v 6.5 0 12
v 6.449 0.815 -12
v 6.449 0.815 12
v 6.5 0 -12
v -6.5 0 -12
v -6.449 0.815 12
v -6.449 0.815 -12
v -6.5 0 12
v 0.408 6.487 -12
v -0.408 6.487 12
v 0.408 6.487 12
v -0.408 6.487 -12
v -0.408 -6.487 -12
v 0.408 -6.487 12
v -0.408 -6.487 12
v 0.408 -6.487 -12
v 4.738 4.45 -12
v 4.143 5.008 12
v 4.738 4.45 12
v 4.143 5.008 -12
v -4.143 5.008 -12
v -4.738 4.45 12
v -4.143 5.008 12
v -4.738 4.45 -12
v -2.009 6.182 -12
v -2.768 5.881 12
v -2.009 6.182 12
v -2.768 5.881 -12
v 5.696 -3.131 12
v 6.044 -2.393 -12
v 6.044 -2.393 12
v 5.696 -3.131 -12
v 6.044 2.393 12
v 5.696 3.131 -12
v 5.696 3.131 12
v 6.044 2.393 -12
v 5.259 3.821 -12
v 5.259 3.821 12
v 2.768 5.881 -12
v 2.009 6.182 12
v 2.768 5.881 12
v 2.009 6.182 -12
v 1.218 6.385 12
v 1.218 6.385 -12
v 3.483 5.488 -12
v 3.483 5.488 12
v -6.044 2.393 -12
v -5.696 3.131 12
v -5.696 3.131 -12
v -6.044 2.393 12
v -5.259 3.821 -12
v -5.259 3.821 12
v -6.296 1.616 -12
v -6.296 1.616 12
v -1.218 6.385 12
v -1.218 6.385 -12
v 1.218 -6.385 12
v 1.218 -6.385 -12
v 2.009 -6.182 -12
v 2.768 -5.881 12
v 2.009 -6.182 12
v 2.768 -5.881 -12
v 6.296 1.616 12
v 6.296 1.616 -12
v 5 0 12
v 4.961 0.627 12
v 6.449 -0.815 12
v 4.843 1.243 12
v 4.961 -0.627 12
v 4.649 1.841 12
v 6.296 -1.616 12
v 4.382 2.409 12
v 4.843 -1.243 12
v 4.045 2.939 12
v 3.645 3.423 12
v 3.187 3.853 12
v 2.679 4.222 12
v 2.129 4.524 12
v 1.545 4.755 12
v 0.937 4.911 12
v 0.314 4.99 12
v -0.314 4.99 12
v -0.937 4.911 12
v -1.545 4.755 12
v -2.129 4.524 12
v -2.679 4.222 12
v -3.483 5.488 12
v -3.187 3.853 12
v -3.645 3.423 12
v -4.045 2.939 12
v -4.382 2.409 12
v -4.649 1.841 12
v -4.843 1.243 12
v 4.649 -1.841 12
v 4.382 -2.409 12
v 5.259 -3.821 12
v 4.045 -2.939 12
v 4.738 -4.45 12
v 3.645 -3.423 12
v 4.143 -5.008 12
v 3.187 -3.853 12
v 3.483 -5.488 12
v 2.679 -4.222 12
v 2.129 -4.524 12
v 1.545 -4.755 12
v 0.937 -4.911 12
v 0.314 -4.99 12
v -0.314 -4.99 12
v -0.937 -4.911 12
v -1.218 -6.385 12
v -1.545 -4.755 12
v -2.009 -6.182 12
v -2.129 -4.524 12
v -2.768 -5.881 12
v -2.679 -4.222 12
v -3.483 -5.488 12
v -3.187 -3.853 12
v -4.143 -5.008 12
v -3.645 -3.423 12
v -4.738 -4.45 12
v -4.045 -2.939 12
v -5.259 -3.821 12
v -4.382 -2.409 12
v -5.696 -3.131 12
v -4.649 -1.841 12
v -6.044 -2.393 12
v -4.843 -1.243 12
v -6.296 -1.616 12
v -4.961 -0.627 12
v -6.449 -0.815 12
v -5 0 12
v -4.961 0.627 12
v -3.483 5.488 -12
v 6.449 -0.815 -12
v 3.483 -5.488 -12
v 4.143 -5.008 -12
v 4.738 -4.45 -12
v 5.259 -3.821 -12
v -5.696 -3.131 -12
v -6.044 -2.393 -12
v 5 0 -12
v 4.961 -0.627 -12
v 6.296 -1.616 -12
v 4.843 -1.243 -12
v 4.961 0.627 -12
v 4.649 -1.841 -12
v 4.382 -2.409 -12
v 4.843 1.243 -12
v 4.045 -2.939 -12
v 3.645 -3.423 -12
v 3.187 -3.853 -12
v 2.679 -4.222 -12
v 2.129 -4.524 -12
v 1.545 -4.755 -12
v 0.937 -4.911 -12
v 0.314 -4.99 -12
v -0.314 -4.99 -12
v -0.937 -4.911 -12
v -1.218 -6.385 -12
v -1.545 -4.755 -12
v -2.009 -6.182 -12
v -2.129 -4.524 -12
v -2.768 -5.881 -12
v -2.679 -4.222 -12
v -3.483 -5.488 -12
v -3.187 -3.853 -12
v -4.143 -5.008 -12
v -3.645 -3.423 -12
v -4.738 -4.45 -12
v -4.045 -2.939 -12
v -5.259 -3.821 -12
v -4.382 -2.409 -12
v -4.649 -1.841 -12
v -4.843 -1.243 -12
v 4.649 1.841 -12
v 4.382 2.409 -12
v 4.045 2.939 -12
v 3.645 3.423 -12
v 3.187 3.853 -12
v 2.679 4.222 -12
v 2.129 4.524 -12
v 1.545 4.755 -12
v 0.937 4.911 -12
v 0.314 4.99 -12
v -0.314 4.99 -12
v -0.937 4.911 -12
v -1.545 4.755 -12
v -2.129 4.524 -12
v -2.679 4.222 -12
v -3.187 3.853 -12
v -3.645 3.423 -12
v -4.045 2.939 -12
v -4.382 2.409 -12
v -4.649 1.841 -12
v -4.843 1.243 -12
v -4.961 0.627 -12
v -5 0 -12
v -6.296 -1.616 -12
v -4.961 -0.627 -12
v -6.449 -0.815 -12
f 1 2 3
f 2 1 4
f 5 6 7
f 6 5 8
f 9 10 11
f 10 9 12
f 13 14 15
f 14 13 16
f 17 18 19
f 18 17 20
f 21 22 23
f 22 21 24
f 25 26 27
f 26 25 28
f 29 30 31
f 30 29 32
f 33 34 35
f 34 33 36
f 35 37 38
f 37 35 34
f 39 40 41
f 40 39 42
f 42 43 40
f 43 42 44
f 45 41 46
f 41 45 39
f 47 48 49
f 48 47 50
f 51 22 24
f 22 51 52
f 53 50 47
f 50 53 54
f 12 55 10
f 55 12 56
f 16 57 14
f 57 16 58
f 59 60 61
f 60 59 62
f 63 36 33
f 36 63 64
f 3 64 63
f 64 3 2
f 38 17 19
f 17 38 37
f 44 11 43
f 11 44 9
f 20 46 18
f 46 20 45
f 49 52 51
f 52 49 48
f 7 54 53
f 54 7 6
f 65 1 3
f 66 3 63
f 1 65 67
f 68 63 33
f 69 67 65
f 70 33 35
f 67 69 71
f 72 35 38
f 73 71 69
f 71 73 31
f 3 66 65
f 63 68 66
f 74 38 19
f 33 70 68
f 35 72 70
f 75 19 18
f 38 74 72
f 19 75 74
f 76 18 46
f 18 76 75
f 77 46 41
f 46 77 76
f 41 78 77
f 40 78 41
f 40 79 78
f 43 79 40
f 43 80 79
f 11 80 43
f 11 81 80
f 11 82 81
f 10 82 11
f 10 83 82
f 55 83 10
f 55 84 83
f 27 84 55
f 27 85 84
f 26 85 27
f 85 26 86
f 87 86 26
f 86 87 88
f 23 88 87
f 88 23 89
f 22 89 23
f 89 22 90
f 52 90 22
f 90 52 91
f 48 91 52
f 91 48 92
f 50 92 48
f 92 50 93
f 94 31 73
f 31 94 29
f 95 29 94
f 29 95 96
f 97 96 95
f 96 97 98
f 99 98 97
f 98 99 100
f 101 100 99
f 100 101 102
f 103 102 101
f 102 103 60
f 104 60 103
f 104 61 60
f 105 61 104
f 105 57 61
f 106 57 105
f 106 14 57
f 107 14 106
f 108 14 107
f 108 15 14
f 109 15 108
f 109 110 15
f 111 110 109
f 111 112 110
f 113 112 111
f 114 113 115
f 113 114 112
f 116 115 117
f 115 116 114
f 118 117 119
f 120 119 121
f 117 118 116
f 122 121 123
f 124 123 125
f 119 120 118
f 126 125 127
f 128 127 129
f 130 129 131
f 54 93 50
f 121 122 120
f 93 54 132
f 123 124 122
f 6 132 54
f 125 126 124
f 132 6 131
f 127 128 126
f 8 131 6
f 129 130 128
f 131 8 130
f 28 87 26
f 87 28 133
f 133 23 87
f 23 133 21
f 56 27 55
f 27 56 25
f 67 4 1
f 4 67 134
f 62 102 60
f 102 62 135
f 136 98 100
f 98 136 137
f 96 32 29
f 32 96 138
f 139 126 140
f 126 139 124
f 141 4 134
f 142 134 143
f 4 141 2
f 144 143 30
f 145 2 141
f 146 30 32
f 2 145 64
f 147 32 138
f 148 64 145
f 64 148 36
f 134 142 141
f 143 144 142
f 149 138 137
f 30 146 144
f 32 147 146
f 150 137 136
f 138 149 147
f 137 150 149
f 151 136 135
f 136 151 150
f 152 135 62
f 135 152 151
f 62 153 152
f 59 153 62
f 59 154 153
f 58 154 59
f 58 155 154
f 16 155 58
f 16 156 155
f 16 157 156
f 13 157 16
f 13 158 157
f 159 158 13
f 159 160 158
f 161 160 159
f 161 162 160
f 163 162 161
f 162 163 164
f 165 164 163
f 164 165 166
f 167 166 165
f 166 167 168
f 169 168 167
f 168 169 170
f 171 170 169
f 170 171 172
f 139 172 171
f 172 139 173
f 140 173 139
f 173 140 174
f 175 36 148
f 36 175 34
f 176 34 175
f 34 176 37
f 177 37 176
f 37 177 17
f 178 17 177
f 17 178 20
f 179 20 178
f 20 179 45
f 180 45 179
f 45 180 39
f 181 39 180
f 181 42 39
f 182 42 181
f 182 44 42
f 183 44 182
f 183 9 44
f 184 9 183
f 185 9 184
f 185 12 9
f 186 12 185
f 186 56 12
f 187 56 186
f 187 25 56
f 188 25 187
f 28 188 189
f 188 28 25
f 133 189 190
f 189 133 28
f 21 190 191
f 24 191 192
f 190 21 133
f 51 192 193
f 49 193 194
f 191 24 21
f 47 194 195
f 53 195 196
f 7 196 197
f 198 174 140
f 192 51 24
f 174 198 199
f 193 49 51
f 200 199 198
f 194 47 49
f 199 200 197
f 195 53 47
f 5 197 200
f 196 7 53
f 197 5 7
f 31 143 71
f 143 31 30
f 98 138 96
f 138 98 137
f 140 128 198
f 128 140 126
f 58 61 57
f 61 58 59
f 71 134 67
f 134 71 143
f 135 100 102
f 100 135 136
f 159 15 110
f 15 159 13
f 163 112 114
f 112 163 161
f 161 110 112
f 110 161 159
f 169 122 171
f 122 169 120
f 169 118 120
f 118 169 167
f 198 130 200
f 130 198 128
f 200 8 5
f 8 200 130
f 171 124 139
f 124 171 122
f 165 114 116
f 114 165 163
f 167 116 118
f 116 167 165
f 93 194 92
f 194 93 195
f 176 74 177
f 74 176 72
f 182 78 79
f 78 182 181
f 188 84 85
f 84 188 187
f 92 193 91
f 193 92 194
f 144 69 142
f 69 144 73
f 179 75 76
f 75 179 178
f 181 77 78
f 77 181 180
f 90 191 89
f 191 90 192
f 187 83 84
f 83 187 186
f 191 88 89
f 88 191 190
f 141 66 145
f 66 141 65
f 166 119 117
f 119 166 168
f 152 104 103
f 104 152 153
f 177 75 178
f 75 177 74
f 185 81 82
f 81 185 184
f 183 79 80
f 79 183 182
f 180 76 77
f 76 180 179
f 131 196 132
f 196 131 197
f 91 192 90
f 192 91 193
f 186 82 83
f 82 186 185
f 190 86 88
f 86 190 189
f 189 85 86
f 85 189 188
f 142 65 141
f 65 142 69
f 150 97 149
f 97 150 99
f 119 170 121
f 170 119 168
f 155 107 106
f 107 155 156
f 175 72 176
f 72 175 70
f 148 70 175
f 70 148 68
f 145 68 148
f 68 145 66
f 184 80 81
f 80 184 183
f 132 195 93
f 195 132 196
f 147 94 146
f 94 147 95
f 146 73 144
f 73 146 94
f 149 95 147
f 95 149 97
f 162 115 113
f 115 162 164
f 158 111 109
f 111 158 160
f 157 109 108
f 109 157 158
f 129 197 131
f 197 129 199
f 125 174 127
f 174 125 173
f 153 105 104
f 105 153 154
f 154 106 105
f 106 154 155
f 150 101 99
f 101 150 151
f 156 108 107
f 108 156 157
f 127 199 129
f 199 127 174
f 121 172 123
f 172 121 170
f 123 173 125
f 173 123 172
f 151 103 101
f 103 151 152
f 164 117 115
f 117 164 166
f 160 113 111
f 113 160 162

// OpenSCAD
$fn = 50;


difference() {
	union() {
		translate(v = [0, 0, -12.0000000000]) {
			cylinder(h = 24, r = 6.5000000000);
		}
	}
	union() {
		translate(v = [0, 0, -100.0000000000]) {
			cylinder(h = 200, r = 5.0000000000);
		}
	}
}
